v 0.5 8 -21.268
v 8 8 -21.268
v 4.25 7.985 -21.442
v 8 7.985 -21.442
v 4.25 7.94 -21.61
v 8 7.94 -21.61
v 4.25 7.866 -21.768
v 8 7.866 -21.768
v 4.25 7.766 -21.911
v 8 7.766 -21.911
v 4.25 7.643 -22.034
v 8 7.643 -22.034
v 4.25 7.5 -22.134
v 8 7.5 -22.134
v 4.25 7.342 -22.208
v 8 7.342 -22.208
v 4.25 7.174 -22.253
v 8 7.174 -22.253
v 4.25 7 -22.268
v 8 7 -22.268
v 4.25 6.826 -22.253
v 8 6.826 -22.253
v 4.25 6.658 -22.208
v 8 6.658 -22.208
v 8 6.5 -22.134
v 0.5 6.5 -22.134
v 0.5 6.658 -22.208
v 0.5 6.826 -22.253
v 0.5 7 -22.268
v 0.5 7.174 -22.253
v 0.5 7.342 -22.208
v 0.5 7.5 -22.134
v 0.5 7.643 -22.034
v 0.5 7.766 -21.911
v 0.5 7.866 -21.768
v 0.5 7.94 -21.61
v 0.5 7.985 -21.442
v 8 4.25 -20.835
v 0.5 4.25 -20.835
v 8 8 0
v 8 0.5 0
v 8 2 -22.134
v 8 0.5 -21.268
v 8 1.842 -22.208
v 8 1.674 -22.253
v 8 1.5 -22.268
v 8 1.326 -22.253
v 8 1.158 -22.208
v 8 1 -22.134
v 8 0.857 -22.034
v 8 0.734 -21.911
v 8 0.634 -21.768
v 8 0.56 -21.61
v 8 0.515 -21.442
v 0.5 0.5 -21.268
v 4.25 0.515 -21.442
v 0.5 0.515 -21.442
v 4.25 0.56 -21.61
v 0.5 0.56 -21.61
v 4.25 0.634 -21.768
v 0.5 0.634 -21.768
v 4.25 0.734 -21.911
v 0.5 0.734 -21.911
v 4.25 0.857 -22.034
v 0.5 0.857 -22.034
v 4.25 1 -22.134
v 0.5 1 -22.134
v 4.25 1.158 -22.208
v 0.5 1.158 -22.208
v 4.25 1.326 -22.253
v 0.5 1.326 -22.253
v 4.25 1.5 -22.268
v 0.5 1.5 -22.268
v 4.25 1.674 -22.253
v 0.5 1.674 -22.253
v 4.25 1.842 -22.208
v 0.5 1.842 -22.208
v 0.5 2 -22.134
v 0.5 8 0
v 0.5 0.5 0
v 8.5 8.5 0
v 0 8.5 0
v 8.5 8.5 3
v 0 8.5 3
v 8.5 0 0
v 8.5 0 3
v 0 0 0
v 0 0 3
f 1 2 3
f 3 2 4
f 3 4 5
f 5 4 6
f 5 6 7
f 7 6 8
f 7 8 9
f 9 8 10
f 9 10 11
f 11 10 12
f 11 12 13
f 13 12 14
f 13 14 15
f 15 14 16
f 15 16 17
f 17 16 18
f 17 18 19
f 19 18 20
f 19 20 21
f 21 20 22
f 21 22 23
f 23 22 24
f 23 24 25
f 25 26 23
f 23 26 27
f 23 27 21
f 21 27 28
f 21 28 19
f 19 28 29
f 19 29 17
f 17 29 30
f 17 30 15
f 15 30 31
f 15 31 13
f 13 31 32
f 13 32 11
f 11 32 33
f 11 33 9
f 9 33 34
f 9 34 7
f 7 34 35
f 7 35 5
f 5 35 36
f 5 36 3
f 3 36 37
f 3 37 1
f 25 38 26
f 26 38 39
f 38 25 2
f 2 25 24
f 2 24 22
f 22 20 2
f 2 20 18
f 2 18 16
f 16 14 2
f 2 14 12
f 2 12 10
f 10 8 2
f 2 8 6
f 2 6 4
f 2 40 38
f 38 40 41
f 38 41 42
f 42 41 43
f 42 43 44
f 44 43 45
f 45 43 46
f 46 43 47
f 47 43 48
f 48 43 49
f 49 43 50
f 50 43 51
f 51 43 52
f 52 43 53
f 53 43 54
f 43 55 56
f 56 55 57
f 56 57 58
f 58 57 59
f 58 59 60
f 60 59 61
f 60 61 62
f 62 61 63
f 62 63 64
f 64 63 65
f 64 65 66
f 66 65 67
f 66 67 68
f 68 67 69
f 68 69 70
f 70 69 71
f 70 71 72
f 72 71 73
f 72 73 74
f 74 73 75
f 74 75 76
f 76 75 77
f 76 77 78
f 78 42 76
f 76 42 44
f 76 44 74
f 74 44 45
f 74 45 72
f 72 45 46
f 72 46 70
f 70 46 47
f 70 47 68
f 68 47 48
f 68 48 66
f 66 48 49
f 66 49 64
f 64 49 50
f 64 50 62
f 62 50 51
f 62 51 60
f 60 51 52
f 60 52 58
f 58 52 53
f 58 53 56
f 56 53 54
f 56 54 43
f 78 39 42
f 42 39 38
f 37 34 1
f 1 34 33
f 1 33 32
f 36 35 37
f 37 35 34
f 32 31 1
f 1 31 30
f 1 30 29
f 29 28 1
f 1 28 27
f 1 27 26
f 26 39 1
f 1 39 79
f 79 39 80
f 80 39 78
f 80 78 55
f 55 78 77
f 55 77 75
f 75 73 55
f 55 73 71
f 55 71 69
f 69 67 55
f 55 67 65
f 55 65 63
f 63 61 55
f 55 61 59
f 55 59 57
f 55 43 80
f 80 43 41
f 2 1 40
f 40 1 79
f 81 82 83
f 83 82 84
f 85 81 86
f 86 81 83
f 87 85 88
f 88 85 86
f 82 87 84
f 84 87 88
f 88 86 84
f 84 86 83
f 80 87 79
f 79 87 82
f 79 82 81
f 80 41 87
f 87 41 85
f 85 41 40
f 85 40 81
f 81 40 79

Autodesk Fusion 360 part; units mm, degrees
sketch "Sketch1" plane through (0, 0, 0) normal (0, 0, 1) x (1, 0, 0)
  line L0 (0, 0) -> (8.5, 0)
  line L1 (8.5, 0) -> (8.5, 8.5)
  line L2 (8.5, 8.5) -> (0, 8.5)
  line L3 (0, 8.5) -> (0, 0)
  dimension "d1" = 8.5
extrude "Extrude1" add sketch "Sketch1" along normal blind 3
sketch "Sketch2" plane through (0, 0, 0) normal (0, 0, -1) x (1, 0, 0)
  line L0 (0, 0) -> (0, -8.5)
  line L1 (0, -8.5) -> (8.5, -8.5)
  line L2 (8.5, -8.5) -> (8.5, 0)
  line L3 (8.5, 0) -> (0, 0)
  line L4 (0.5, -0.5) -> (8, -0.5)
  line L5 (8, -0.5) -> (8, -8)
  line L6 (8, -8) -> (0.5, -8)
  line L7 (0.5, -8) -> (0.5, -0.5)
  line L8 (0.5, -0.5) -> (8, -8) construction
  line L9 (8.5, 0) -> (0, -8.5) construction
  dimension "d4" = 7.5
extrude "Extrude2" add sketch "Sketch2" along normal blind 23 contours L4 L5 L6 L7
sketch "Sketch3" plane through (8, 0, 0) normal (1, 0, 0) x (0, 1, 0)
  line L0 (8, 0) -> (0.5, 0)
  line L1 (0.5, 0) -> (0.5, -23)
  line L2 (0.5, -23) -> (8, -23)
  line L3 (8, -23) -> (8, 0)
  line L4 (0.5, -23) -> (4.25, -20.8349)
  line L5 (4.25, -20.8349) -> (8, -23)
  line L6 (8, -23) -> (0.5, -23)
  dimension "d7" = 120
extrude "Extrude3" cut sketch "Sketch3" against normal through all contours L2 L4 L5 L6
fillet "Fillet1" radius 1 2 edges at (4.25, 0.5, -23) (4.25, 8, -23)
